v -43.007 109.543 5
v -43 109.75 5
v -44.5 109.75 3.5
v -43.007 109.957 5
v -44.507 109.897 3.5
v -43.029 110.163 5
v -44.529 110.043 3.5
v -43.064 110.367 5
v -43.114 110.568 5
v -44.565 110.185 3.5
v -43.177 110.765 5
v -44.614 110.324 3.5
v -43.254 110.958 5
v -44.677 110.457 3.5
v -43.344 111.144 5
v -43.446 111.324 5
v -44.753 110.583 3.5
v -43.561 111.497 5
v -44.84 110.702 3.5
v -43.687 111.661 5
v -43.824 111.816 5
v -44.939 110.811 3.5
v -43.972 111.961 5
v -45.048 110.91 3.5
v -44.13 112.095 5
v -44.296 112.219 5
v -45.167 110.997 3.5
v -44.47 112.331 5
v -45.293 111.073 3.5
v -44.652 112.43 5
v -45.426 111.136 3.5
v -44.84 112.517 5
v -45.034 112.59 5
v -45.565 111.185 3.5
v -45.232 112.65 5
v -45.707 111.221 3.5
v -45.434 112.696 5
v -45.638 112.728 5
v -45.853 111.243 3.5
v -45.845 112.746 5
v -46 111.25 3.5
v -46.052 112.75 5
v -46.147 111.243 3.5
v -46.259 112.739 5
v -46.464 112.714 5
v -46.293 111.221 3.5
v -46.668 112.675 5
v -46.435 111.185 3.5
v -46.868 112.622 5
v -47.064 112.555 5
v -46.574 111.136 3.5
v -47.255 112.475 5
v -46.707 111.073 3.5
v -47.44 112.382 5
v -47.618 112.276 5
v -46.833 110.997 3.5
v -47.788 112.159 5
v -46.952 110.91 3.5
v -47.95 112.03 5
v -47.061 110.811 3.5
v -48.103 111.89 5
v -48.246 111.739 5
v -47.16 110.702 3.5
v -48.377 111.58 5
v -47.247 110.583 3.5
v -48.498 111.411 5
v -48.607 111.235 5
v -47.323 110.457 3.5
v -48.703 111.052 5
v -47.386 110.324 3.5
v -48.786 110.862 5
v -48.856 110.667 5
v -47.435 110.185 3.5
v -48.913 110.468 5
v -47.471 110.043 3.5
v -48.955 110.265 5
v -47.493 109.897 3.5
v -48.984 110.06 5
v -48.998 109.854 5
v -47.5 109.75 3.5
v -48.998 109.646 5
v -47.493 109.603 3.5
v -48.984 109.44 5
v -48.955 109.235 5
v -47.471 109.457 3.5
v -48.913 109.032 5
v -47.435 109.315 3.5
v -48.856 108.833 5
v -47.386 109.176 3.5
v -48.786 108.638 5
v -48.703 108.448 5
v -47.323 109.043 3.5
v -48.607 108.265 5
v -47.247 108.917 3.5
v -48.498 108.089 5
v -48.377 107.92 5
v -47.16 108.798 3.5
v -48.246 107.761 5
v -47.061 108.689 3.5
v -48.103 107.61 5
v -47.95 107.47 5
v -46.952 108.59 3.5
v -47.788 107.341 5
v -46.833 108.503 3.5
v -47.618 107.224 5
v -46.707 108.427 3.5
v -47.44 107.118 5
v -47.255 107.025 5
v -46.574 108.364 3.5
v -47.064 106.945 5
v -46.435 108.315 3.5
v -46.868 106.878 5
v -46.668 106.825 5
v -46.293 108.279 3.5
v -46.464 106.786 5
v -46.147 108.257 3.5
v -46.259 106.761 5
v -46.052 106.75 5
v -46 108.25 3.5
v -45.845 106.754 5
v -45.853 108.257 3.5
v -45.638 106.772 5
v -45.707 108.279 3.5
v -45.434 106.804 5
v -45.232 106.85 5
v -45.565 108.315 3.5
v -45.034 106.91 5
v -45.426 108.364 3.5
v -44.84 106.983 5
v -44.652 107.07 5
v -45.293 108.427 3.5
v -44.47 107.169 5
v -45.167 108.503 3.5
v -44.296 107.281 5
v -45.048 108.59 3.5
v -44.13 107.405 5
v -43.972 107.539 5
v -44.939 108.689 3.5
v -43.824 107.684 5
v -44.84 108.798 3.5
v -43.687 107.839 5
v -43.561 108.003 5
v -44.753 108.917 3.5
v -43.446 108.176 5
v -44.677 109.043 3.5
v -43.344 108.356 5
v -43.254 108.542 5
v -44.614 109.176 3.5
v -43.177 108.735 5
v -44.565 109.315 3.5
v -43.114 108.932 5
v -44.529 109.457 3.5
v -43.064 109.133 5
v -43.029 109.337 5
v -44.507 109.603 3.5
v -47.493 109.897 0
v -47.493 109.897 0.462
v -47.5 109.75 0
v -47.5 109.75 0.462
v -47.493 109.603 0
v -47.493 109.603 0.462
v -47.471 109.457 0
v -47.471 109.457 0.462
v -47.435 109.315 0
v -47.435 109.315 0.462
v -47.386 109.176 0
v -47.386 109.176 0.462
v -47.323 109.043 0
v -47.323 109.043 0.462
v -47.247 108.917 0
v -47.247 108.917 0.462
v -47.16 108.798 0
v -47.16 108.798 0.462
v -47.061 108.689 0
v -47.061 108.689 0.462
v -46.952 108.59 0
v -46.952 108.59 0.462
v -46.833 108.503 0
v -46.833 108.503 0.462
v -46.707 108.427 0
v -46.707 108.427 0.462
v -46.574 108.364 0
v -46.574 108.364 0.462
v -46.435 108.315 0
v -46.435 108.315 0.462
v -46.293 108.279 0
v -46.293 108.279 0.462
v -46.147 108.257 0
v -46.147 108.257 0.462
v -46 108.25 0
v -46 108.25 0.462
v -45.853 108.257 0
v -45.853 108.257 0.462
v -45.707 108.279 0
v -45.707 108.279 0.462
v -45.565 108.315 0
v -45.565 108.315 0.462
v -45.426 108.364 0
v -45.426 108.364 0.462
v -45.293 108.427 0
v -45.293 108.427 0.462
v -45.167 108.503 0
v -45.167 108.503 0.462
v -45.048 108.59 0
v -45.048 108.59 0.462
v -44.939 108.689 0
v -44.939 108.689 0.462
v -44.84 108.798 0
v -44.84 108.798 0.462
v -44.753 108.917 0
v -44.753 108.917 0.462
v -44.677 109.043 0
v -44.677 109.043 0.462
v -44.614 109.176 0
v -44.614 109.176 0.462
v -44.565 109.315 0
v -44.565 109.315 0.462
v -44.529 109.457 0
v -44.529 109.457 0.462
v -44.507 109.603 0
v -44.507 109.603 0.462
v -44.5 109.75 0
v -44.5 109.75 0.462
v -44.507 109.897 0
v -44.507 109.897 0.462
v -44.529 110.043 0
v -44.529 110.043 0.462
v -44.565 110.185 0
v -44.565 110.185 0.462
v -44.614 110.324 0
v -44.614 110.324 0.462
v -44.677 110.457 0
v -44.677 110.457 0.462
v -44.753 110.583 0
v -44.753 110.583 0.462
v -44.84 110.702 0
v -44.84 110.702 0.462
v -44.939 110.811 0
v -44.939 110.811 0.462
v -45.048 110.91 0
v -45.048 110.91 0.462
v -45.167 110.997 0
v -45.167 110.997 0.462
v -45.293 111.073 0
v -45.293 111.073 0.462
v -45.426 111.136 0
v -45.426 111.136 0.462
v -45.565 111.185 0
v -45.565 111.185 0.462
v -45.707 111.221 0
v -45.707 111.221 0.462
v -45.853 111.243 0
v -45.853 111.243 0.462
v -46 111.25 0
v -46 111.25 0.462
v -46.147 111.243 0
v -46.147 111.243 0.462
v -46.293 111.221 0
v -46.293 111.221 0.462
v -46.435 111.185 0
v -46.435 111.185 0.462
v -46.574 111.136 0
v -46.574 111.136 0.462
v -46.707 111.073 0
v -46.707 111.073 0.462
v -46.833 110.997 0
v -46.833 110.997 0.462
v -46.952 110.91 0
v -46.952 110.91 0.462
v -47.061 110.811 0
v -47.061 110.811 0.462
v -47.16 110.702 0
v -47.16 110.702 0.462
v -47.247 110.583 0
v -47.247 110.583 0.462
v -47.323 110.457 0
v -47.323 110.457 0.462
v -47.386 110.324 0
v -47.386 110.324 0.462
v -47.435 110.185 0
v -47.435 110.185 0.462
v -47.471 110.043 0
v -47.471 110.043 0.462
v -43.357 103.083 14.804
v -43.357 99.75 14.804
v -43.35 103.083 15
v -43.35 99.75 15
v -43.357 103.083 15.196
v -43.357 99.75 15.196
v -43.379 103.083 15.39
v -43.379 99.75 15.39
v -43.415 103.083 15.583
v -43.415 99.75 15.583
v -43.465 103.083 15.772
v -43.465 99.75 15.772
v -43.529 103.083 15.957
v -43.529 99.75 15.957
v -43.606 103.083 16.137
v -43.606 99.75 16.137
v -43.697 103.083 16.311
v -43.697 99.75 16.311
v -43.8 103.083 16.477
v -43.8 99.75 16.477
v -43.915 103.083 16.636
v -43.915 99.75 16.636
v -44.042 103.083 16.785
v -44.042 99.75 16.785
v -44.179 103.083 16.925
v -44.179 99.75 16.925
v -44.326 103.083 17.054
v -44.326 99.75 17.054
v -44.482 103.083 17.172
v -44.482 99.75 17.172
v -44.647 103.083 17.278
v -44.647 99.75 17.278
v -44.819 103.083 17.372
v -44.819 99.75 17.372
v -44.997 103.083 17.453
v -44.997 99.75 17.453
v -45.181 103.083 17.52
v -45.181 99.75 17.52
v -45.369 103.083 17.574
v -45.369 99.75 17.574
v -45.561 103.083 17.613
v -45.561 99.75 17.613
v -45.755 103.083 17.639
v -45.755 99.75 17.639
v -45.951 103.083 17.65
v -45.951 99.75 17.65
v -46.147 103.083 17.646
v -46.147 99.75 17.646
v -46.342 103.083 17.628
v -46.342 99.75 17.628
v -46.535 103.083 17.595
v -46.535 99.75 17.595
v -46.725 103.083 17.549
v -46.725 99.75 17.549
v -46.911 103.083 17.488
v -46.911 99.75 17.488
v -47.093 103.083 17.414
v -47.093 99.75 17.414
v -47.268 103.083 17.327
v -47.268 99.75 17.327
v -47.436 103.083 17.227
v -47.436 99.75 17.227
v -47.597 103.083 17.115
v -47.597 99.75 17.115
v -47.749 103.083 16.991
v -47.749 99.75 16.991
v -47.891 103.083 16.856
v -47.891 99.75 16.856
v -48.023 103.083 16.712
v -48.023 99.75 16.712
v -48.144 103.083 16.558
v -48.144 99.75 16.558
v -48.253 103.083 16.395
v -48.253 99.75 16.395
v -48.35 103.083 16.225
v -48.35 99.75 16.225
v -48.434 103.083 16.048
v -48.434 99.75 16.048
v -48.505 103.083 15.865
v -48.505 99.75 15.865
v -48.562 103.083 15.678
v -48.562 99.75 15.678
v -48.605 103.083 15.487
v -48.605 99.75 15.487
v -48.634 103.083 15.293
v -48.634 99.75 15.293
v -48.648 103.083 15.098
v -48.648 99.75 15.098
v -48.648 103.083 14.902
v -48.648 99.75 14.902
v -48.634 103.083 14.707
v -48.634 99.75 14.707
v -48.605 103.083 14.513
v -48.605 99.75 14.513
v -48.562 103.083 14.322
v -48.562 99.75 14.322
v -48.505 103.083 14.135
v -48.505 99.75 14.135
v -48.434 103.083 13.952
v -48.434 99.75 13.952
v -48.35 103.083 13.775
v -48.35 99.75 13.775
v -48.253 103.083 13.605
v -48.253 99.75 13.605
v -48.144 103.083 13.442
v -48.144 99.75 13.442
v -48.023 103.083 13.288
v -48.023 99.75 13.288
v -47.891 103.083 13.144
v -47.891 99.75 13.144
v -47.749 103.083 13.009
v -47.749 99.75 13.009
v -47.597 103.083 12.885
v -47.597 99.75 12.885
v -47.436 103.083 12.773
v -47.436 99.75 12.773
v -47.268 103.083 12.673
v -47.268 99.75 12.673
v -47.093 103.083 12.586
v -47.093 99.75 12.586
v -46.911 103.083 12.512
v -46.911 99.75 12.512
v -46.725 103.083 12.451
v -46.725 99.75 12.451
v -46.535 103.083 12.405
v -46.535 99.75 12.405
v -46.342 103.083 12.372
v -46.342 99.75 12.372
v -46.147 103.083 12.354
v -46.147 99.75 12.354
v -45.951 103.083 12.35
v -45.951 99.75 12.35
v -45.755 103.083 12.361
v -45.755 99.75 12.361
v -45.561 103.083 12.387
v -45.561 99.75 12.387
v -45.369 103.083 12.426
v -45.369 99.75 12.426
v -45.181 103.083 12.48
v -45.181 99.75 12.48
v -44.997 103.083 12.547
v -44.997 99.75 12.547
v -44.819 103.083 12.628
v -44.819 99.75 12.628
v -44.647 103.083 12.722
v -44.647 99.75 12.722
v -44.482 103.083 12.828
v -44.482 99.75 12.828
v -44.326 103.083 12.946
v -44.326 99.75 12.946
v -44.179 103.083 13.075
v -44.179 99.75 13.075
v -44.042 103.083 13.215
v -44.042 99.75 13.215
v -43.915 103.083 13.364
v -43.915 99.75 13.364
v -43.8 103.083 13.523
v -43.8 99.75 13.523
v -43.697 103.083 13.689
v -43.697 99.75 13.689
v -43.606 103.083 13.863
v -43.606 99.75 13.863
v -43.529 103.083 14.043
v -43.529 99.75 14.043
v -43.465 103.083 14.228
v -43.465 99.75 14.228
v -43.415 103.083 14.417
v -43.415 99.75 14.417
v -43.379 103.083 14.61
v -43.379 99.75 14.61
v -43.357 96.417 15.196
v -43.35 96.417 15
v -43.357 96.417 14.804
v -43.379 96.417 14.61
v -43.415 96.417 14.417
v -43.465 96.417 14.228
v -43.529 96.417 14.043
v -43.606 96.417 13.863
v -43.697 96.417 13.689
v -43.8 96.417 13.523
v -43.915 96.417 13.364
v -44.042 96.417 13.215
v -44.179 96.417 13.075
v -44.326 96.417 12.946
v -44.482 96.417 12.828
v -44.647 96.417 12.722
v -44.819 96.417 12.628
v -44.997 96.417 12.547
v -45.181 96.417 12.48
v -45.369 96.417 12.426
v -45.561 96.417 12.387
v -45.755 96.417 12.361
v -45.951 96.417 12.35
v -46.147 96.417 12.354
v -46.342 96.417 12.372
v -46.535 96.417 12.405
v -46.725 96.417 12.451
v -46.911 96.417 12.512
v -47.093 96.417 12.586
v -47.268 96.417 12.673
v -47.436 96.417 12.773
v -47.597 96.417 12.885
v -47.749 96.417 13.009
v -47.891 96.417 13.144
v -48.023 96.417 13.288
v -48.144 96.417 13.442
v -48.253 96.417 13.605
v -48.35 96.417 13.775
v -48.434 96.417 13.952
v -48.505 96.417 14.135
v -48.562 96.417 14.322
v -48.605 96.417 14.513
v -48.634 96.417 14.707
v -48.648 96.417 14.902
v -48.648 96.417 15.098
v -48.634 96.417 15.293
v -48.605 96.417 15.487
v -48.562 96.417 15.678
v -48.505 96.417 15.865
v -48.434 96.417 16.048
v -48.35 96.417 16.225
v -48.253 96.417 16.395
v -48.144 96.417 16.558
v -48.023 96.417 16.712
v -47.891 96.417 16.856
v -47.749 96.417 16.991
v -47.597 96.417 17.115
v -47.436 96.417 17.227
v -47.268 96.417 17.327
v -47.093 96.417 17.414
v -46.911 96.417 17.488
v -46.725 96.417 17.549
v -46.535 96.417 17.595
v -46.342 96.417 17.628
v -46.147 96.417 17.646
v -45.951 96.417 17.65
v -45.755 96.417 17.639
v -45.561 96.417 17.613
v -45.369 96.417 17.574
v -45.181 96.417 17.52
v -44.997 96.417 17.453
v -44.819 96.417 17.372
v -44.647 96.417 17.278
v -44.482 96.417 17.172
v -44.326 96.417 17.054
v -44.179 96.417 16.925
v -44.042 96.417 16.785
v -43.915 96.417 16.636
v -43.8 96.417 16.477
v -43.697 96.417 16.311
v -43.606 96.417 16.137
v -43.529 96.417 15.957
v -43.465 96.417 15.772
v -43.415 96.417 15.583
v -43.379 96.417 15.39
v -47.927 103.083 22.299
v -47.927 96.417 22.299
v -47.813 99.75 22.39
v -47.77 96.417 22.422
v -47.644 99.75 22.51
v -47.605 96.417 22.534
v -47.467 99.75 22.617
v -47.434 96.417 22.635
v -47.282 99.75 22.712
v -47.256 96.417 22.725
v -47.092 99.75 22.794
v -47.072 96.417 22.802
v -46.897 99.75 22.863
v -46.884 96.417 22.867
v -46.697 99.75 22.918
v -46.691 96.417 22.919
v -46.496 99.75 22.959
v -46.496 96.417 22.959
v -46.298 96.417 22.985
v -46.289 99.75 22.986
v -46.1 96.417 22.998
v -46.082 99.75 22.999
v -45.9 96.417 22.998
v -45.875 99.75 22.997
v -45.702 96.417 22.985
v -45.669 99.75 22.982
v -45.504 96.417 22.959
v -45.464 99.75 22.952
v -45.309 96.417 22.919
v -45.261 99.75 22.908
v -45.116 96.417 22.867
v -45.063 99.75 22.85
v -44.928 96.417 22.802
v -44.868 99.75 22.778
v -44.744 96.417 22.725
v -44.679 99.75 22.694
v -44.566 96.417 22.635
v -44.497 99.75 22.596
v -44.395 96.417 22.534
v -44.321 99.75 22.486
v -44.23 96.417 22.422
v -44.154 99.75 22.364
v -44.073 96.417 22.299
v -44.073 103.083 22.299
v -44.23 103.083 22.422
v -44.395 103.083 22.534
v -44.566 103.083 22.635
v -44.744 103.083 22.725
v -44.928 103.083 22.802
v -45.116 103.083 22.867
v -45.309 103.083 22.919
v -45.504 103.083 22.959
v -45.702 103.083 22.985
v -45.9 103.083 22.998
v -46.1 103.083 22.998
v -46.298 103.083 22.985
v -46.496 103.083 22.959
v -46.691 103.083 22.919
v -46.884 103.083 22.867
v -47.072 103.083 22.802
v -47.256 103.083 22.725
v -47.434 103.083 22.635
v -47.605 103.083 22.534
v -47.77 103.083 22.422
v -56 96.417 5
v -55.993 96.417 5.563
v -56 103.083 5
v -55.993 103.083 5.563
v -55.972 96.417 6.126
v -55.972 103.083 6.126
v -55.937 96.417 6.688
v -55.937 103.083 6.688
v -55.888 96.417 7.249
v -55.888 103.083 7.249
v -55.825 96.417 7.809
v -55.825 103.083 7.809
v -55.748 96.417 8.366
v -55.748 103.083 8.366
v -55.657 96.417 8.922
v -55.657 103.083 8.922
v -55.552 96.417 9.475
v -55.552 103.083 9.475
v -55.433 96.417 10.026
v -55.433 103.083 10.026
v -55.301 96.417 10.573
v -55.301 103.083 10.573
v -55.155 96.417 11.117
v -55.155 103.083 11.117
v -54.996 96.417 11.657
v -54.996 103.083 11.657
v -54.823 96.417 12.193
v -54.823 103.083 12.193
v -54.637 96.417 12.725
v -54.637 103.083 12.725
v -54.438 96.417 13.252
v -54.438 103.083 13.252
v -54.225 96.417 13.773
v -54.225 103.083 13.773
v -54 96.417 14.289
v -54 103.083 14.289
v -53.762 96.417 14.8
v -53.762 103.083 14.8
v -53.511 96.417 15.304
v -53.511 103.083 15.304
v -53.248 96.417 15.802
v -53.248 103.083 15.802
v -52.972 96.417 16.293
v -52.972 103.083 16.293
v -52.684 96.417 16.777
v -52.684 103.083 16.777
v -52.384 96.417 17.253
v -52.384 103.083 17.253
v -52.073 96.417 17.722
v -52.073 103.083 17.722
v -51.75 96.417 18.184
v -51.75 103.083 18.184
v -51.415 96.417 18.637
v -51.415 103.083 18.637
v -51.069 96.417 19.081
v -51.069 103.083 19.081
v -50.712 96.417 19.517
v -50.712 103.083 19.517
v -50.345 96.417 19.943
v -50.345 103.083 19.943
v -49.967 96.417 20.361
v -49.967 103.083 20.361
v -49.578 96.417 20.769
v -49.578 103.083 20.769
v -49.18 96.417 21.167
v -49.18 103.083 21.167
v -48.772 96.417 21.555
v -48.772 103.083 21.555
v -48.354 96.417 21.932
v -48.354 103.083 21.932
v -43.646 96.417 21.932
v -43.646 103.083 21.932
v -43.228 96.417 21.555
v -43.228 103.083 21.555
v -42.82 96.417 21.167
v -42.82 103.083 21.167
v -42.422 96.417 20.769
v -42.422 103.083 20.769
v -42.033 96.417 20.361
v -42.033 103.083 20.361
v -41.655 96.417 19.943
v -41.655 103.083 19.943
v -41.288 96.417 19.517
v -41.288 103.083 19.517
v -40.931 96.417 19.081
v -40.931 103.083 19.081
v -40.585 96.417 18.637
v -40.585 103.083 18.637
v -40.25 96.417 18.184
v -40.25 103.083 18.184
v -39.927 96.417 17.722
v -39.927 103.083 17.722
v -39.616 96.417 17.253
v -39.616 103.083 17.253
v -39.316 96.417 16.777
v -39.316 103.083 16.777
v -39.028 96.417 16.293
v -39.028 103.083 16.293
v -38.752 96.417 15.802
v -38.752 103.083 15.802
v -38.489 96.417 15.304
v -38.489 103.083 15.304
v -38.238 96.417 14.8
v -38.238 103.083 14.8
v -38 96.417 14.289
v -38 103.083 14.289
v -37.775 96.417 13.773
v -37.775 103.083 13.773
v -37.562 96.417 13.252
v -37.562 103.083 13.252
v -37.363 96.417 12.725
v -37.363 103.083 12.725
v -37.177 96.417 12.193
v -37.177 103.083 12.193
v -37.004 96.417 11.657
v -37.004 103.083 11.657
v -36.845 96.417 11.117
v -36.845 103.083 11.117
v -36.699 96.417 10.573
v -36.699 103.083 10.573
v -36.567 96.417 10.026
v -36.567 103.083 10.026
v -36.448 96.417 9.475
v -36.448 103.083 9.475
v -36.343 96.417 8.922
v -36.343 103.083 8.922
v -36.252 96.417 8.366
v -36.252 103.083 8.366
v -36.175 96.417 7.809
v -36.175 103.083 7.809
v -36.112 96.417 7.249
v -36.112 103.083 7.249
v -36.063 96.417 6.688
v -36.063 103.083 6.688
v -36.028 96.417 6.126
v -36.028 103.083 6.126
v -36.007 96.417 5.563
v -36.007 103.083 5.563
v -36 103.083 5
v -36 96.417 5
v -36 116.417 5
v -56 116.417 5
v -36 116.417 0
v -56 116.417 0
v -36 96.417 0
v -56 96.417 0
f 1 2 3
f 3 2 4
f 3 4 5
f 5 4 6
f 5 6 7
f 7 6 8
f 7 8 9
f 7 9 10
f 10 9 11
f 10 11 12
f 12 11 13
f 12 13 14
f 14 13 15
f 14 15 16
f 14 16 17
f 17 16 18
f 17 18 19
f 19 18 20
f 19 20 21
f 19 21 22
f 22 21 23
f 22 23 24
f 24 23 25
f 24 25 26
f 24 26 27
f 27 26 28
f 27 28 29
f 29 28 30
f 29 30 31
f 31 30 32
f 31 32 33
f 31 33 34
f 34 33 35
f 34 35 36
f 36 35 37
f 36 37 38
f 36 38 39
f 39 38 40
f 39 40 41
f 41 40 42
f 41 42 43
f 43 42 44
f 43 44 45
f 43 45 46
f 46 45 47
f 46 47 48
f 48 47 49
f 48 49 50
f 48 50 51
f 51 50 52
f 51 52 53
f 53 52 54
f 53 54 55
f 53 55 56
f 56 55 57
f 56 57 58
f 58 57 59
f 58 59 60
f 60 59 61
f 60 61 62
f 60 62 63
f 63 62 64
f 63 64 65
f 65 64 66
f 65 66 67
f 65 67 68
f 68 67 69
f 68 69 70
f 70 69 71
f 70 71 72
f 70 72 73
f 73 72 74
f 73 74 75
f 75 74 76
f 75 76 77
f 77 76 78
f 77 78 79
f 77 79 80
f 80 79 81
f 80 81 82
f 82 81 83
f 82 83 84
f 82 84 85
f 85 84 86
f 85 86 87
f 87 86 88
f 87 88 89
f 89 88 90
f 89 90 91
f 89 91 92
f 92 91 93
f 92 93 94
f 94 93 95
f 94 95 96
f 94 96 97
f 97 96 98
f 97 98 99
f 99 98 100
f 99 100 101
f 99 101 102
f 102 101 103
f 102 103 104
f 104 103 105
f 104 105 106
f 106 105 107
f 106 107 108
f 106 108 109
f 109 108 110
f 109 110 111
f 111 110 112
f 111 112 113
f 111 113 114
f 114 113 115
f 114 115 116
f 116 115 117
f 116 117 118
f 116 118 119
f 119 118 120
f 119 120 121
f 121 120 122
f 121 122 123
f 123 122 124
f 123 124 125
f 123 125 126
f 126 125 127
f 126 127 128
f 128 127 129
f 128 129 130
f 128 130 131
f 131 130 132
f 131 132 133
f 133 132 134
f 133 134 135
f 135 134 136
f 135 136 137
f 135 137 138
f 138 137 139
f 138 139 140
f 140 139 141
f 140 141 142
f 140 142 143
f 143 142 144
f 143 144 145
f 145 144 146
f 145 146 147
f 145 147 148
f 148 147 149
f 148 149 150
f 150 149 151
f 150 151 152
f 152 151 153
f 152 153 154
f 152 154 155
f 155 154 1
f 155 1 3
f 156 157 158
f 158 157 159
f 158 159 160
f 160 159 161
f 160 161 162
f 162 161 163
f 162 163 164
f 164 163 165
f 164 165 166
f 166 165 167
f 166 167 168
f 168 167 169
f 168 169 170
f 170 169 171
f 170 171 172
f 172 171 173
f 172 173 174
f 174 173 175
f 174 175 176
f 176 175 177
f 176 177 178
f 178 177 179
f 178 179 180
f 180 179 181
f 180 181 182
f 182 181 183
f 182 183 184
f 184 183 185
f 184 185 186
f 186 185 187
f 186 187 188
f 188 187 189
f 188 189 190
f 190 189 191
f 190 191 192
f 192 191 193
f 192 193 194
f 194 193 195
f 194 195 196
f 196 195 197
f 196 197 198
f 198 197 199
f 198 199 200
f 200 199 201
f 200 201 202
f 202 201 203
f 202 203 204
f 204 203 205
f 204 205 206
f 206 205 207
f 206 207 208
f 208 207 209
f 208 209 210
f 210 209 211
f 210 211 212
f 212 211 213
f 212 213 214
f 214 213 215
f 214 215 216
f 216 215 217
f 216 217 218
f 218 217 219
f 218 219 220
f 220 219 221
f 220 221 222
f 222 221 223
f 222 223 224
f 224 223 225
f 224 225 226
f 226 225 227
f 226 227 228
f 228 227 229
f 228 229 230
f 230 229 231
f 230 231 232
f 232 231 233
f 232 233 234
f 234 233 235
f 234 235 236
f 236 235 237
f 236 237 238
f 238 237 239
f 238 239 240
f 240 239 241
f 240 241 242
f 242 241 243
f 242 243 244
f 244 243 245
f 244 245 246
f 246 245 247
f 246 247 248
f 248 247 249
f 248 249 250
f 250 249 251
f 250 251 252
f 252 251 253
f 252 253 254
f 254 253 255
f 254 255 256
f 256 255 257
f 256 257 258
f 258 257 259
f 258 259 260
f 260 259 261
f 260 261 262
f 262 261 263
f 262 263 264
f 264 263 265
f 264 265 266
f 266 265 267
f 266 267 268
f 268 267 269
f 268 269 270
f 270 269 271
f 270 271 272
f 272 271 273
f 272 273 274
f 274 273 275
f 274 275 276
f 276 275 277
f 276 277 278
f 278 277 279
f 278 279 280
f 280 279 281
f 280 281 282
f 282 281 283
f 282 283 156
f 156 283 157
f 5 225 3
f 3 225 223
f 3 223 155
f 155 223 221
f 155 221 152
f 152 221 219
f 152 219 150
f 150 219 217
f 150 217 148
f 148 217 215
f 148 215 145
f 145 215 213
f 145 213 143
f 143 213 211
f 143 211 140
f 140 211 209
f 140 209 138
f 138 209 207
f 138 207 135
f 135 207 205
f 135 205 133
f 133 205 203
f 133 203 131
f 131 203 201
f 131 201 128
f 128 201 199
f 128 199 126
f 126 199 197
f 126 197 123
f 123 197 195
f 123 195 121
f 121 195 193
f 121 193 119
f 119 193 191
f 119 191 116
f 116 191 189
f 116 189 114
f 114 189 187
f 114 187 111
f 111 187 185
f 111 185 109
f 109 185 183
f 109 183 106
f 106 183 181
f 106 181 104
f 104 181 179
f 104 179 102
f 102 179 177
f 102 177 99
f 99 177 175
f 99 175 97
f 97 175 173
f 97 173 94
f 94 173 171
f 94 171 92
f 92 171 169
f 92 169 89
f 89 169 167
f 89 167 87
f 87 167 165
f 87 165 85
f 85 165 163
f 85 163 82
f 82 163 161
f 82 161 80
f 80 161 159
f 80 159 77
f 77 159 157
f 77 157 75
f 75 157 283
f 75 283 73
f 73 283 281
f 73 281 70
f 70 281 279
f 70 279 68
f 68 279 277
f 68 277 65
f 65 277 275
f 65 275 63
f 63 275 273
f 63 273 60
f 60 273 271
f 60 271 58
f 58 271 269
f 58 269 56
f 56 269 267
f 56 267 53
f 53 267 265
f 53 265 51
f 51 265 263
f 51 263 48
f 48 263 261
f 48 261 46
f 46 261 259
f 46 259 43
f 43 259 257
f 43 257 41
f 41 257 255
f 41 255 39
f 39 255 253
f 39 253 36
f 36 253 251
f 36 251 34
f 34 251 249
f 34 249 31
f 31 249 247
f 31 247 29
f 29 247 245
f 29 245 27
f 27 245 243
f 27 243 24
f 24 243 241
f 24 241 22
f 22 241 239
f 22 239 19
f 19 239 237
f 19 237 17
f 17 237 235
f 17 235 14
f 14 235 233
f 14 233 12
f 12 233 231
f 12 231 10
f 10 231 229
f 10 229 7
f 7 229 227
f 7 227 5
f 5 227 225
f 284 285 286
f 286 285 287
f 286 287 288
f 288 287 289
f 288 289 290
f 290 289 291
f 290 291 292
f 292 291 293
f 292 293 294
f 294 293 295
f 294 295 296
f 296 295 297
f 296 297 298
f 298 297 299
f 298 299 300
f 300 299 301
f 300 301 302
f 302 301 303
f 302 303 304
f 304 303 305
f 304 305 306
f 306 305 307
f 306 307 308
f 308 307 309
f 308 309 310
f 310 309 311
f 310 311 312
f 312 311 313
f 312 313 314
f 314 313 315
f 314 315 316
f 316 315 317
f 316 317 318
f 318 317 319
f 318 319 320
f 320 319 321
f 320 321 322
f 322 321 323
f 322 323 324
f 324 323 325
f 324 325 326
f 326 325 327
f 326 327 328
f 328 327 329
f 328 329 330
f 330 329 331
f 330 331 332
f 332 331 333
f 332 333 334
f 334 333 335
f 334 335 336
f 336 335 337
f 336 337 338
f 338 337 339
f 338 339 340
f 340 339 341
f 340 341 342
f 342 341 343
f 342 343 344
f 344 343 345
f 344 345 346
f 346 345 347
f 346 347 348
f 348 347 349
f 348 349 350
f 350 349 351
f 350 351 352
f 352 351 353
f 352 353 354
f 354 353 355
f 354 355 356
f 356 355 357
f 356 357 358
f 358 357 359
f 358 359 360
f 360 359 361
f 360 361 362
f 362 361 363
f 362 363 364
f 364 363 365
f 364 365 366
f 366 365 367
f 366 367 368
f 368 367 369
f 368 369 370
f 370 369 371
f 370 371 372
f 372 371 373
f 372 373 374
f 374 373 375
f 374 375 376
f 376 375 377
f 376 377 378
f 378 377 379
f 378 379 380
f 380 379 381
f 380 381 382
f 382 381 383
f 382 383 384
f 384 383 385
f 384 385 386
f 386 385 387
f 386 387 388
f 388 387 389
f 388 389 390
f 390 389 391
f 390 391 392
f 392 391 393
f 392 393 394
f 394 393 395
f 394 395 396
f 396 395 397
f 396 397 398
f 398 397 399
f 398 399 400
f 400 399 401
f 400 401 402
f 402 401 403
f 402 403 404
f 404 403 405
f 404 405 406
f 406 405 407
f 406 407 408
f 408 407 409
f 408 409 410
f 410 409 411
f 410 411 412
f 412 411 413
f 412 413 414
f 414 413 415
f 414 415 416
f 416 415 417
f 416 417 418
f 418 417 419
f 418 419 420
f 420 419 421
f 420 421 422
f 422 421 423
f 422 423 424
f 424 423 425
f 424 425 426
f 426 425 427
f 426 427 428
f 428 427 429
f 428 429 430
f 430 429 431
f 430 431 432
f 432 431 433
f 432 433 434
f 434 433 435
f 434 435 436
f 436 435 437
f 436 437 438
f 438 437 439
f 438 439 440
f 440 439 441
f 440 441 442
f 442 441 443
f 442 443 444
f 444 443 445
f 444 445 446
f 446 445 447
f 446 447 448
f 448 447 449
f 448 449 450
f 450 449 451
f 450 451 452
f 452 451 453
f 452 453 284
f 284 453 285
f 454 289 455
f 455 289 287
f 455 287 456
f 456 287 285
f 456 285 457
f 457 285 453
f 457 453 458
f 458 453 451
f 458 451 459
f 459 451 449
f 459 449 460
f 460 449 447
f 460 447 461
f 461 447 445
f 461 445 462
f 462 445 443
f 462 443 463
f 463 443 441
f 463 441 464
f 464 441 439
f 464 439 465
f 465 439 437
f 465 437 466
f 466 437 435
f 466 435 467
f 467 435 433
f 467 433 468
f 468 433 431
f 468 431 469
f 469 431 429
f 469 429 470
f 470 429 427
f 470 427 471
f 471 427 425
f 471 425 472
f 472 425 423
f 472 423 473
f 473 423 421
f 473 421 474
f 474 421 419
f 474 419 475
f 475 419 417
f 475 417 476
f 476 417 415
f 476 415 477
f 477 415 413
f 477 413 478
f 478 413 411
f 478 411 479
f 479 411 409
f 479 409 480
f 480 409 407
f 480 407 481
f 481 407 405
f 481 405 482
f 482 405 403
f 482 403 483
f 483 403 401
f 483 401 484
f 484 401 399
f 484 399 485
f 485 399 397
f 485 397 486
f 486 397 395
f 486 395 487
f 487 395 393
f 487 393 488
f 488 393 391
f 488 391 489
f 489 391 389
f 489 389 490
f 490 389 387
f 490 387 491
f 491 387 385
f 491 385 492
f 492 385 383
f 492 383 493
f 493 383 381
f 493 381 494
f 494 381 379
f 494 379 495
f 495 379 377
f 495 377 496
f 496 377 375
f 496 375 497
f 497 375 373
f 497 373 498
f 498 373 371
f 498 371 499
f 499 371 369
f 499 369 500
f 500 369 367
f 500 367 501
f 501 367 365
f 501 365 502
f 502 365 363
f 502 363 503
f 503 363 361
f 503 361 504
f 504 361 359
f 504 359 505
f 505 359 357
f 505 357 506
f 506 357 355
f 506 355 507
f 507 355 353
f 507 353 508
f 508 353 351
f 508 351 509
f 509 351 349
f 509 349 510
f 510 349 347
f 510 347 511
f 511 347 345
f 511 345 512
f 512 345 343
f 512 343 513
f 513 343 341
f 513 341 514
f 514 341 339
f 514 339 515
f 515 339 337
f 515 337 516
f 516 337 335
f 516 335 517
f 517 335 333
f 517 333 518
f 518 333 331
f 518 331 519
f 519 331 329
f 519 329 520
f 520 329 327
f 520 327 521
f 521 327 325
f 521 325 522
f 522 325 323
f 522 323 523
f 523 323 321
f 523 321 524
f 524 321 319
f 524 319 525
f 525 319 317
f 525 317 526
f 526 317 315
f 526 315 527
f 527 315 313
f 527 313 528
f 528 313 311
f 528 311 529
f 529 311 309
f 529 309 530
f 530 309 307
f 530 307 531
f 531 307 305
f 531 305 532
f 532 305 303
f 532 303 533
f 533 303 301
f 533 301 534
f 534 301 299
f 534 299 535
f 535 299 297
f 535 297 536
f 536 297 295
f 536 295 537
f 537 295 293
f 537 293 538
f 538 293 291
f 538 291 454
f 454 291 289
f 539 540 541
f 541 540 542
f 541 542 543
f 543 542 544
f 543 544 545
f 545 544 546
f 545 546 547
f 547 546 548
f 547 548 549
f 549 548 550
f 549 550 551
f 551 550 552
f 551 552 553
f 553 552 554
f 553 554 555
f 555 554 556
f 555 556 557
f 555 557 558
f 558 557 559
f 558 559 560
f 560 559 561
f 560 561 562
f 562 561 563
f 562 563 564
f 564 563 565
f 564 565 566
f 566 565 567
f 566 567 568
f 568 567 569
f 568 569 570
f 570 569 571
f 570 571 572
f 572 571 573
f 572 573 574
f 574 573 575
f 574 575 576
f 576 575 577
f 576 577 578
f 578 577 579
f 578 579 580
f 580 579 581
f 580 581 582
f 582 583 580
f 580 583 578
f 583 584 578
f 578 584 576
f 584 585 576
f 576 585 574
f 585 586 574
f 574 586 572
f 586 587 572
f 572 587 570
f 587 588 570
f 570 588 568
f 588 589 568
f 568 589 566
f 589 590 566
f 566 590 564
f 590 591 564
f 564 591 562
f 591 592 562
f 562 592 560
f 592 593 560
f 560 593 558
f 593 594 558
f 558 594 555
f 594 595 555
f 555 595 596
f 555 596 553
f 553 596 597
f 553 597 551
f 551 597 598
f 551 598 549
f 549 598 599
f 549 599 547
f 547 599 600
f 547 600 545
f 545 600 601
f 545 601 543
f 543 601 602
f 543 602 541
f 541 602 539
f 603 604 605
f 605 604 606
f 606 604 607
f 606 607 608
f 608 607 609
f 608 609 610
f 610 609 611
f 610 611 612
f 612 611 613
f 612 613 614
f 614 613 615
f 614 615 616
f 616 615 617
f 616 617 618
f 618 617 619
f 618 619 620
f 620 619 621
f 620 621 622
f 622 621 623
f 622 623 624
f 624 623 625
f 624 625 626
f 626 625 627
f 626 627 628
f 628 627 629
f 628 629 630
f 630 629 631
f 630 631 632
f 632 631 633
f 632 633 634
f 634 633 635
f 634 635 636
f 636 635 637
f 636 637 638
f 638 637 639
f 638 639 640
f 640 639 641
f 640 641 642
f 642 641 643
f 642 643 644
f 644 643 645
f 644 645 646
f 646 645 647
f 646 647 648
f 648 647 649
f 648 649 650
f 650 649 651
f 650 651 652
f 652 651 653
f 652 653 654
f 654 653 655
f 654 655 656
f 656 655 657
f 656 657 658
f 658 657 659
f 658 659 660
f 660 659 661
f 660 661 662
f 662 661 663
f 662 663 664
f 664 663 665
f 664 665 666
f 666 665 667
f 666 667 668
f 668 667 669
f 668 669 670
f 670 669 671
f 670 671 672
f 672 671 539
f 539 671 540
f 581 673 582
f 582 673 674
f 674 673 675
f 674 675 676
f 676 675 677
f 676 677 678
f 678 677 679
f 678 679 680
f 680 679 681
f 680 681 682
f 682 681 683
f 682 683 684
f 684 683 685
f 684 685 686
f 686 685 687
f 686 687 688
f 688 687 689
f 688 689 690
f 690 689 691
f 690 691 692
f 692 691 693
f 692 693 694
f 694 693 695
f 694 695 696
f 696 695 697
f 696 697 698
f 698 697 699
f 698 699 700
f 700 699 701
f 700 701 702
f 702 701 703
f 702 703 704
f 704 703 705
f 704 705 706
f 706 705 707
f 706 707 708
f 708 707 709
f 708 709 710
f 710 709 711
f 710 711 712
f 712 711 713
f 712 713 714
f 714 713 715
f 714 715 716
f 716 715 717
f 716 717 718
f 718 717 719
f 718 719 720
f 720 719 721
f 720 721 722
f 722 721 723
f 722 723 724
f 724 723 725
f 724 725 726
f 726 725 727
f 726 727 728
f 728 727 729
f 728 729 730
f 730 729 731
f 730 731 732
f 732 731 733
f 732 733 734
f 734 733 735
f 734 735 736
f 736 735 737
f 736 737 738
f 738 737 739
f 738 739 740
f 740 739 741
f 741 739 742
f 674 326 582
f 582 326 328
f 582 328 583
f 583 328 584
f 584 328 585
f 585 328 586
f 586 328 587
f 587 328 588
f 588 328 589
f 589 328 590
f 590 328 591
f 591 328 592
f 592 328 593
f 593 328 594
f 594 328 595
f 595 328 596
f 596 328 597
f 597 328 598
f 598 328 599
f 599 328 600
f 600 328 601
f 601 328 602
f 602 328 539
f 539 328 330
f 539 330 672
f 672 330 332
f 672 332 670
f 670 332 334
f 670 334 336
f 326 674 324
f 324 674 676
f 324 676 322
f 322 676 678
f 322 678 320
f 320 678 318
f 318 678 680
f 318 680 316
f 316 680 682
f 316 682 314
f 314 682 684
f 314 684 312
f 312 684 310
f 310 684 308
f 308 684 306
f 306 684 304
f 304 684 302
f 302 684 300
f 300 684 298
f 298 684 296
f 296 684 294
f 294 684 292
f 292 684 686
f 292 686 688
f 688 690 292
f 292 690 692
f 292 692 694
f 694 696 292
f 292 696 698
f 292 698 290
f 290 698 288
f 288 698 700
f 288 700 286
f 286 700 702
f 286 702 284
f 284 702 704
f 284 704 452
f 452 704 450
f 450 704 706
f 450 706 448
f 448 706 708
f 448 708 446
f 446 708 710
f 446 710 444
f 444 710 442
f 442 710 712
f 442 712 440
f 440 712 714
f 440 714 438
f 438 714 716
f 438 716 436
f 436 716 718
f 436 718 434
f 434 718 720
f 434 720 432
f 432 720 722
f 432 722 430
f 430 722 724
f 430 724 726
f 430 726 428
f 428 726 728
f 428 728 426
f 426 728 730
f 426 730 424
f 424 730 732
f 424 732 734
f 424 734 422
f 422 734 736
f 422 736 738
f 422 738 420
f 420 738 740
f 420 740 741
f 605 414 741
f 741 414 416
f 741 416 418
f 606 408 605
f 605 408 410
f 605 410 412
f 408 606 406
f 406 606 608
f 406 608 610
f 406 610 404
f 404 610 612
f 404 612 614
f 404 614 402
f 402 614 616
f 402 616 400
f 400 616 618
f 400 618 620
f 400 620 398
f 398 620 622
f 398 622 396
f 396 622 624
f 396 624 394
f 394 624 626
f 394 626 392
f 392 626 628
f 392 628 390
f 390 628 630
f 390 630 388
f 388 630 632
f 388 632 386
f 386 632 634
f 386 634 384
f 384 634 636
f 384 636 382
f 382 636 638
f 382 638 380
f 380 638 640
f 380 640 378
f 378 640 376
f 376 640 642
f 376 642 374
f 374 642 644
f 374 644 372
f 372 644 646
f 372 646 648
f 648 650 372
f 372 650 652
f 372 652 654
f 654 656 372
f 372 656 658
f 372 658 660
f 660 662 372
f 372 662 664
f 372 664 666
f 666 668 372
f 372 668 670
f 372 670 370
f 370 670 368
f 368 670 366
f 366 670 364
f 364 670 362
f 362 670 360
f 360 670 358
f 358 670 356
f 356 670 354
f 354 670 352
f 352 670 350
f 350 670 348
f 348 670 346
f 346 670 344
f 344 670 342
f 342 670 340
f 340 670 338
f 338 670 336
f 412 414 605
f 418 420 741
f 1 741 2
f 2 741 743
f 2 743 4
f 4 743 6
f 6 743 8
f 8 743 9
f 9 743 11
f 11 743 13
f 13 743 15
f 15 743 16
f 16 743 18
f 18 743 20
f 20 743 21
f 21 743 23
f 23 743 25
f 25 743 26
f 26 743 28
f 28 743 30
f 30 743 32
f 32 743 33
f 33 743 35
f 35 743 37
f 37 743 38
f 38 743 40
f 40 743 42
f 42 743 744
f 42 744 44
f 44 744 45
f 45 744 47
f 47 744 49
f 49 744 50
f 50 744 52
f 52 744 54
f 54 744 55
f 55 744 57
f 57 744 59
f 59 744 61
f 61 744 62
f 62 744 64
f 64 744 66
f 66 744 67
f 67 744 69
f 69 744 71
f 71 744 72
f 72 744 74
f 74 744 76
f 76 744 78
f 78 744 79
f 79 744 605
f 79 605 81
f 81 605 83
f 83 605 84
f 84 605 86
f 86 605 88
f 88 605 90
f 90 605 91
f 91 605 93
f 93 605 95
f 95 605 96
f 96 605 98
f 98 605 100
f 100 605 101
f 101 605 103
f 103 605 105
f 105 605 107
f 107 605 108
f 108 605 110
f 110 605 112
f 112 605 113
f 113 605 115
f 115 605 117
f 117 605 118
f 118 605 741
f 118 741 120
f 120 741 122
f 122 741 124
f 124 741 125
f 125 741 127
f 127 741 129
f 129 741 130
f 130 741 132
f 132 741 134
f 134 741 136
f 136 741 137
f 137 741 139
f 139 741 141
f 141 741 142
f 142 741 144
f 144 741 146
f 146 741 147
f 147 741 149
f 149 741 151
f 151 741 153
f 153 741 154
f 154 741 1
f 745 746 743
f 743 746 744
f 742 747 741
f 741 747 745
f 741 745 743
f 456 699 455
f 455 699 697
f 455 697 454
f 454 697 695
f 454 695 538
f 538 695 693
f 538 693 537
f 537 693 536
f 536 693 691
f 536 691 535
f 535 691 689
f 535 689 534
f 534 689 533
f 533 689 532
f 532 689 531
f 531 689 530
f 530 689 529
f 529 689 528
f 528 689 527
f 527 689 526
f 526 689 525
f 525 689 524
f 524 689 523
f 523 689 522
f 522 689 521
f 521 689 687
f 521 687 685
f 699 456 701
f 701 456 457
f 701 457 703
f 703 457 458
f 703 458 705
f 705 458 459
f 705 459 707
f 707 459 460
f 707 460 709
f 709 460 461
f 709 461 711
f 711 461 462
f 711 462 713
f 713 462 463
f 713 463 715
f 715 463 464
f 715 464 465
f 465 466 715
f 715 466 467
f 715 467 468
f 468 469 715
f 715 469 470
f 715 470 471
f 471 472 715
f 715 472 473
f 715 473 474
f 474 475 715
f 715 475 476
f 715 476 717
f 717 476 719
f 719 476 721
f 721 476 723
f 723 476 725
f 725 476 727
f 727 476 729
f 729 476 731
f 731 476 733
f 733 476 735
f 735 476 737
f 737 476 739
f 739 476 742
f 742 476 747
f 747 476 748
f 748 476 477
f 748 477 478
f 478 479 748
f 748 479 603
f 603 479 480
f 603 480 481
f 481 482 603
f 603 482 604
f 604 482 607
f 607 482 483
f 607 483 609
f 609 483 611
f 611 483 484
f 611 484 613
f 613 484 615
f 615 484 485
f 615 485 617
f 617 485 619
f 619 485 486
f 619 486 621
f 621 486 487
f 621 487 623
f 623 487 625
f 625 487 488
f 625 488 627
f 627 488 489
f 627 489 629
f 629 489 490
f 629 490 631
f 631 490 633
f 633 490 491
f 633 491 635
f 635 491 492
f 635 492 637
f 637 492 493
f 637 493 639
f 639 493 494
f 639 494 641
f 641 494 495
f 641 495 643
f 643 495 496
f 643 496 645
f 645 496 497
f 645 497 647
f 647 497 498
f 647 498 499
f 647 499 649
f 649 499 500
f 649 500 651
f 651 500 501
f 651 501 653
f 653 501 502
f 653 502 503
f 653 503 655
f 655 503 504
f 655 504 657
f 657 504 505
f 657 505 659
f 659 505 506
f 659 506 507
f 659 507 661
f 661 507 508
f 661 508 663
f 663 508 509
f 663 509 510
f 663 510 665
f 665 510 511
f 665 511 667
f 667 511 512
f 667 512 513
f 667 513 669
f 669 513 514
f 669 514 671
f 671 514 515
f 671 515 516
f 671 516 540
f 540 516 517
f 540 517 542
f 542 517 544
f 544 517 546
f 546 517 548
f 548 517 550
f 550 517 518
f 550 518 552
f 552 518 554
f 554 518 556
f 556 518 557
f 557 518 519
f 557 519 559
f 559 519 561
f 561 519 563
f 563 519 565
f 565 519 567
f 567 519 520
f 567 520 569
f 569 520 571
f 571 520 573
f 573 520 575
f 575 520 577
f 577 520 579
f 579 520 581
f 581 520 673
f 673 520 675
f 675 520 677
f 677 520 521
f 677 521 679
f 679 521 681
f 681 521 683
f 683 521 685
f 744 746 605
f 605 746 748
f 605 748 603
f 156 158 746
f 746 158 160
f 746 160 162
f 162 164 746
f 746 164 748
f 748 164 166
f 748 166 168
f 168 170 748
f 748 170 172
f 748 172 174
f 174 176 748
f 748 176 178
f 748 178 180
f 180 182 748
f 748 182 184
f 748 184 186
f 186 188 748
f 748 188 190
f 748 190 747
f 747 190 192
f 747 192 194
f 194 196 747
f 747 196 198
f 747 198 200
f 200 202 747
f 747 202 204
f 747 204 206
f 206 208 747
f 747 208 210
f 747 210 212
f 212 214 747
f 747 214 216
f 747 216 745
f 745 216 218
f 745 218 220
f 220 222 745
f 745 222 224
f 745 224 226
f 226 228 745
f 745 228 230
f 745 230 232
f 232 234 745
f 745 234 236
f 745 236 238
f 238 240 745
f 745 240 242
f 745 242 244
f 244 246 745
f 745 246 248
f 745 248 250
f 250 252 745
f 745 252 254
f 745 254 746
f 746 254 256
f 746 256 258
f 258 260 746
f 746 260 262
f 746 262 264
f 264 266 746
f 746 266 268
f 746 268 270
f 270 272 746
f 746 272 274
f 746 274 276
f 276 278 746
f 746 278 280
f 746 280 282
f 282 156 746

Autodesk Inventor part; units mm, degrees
ref_plane "YZ Plane" through (0, 0, 0) normal (1, 0, 0) x (0, 1, 0)
ref_plane "XZ Plane" through (0, 0, 0) normal (0, 1, 0) x (-1, 0, 0)
ref_plane "XY Plane" through (0, 0, 0) normal (0, 0, 1) x (1, 0, 0)
sketch "Skizze2" plane through (0, 0, 0) normal (0, 0, 1) x (1, 0, 0)
  line L0 (-36, 116.4167) -> (-56, 116.4167)
  line L1 (-56, 116.4167) -> (-56, 96.4167)
  line L2 (-56, 96.4167) -> (-36, 96.4167)
  line L3 (-36, 96.4167) -> (-36, 116.4167)
  circle A0 centre (-46, 109.75) radius 1.7 projected
  point P0 (0, 0)
  dimension "d0" = 20
  dimension "d1" = 10
  dimension "d2" = 20
  dimension "d3" = 6.6667
extrude "Extrusion1" add sketch "Skizze2" along normal blind 5 contours L3 L2 L1 L0 | A0
sketch "Skizze4" plane through (-56, 96.4167, 0) normal (0, -1, 0) x (1, 0, 0)
  line L0 (0, 0) -> (20, 0) projected
  line L1 (20, 0) -> (20, 5) projected
  line L2 (0, 5) -> (20, 5) projected
  line L3 (0, 0) -> (0, 5) projected
  line L4 (0, 0) -> (0, 5) projected
  line L5 (20, 0) -> (20, 5) projected
  arc A0 (11.927, 22.2993) -> (8.073, 22.2993) centre (10, 20) ccw
  line L6 (10, 20) -> (10, 5) construction
  line L7 (0, 5) -> (20, 5) construction
  arc A1 (8.073, 22.2993) -> (0, 5) centre (22.5714, 5) ccw
  arc A2 (20, 5) -> (11.927, 22.2993) centre (-2.5714, 5) ccw
  circle A3 centre (10, 15) radius 2.65
  point P0 (56, 0)
  dimension "d6" = 6
  dimension "d7" = 15
  dimension "d8" = 23
  dimension "d11" = 5.3
  dimension "d20" = 10
extrude "Extrusion2" add sketch "Skizze4" against normal blind 6.6667 contours A1 A0 A2 L2
sketch "Skizze6" plane through (0, 0, 5) normal (0, 0, 1) x (1, 0, 0)
  circle A0 centre (-46, 109.75) radius 1.7 projected
  point P0 (0, 0)
hole "Bohrung1" at (-46, 109.75, 5) direction (0, 0, -1) diameter 3 end through all countersink diameter 6 countersink angle 90
equation "\"d1\" = 0.5 * d0"
equation "\"d3\" = 0.333333 * d2"
properties part number "Winkel"
